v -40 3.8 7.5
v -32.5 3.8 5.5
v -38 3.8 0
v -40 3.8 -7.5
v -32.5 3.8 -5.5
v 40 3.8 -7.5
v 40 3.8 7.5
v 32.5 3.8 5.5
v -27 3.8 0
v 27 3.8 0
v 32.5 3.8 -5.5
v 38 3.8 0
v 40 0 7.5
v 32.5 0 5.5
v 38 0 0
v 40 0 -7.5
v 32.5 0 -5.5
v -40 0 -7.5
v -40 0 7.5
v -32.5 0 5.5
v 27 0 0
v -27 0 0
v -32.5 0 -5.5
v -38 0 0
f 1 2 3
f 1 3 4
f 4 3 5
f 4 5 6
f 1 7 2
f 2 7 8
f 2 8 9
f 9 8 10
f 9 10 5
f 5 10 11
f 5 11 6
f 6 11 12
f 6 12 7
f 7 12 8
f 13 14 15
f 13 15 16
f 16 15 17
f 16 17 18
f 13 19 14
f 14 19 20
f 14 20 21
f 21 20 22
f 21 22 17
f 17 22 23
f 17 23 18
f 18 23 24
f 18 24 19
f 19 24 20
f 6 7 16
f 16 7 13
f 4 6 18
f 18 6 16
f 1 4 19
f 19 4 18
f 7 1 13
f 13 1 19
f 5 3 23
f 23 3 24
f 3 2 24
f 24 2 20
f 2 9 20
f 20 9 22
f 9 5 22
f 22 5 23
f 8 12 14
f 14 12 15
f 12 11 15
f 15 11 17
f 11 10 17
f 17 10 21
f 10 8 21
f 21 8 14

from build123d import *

# Parameters (mm, degrees)
SKETCH1_W           = 80
SKETCH1_H           = 15
BOSS_EXTRUDE1_DEPTH = 3.8


with BuildPart() as part:
    # Sketch1 → Boss-Extrude1 (new body)
    with BuildSketch(Plane(origin=(0, 0, 0), x_dir=(1, 0, 0), z_dir=(0, 1, 0))):
        Rectangle(SKETCH1_W, SKETCH1_H)
        Polygon((-38, 0), (-32.5, -5.5), (-27, 0), (-32.5, 5.5), align=None, mode=Mode.SUBTRACT)
        Polygon((32.5, 5.5), (27, 0), (32.5, -5.5), (38, 0), align=None, mode=Mode.SUBTRACT)
    extrude(amount=BOSS_EXTRUDE1_DEPTH)


solid = part.part
